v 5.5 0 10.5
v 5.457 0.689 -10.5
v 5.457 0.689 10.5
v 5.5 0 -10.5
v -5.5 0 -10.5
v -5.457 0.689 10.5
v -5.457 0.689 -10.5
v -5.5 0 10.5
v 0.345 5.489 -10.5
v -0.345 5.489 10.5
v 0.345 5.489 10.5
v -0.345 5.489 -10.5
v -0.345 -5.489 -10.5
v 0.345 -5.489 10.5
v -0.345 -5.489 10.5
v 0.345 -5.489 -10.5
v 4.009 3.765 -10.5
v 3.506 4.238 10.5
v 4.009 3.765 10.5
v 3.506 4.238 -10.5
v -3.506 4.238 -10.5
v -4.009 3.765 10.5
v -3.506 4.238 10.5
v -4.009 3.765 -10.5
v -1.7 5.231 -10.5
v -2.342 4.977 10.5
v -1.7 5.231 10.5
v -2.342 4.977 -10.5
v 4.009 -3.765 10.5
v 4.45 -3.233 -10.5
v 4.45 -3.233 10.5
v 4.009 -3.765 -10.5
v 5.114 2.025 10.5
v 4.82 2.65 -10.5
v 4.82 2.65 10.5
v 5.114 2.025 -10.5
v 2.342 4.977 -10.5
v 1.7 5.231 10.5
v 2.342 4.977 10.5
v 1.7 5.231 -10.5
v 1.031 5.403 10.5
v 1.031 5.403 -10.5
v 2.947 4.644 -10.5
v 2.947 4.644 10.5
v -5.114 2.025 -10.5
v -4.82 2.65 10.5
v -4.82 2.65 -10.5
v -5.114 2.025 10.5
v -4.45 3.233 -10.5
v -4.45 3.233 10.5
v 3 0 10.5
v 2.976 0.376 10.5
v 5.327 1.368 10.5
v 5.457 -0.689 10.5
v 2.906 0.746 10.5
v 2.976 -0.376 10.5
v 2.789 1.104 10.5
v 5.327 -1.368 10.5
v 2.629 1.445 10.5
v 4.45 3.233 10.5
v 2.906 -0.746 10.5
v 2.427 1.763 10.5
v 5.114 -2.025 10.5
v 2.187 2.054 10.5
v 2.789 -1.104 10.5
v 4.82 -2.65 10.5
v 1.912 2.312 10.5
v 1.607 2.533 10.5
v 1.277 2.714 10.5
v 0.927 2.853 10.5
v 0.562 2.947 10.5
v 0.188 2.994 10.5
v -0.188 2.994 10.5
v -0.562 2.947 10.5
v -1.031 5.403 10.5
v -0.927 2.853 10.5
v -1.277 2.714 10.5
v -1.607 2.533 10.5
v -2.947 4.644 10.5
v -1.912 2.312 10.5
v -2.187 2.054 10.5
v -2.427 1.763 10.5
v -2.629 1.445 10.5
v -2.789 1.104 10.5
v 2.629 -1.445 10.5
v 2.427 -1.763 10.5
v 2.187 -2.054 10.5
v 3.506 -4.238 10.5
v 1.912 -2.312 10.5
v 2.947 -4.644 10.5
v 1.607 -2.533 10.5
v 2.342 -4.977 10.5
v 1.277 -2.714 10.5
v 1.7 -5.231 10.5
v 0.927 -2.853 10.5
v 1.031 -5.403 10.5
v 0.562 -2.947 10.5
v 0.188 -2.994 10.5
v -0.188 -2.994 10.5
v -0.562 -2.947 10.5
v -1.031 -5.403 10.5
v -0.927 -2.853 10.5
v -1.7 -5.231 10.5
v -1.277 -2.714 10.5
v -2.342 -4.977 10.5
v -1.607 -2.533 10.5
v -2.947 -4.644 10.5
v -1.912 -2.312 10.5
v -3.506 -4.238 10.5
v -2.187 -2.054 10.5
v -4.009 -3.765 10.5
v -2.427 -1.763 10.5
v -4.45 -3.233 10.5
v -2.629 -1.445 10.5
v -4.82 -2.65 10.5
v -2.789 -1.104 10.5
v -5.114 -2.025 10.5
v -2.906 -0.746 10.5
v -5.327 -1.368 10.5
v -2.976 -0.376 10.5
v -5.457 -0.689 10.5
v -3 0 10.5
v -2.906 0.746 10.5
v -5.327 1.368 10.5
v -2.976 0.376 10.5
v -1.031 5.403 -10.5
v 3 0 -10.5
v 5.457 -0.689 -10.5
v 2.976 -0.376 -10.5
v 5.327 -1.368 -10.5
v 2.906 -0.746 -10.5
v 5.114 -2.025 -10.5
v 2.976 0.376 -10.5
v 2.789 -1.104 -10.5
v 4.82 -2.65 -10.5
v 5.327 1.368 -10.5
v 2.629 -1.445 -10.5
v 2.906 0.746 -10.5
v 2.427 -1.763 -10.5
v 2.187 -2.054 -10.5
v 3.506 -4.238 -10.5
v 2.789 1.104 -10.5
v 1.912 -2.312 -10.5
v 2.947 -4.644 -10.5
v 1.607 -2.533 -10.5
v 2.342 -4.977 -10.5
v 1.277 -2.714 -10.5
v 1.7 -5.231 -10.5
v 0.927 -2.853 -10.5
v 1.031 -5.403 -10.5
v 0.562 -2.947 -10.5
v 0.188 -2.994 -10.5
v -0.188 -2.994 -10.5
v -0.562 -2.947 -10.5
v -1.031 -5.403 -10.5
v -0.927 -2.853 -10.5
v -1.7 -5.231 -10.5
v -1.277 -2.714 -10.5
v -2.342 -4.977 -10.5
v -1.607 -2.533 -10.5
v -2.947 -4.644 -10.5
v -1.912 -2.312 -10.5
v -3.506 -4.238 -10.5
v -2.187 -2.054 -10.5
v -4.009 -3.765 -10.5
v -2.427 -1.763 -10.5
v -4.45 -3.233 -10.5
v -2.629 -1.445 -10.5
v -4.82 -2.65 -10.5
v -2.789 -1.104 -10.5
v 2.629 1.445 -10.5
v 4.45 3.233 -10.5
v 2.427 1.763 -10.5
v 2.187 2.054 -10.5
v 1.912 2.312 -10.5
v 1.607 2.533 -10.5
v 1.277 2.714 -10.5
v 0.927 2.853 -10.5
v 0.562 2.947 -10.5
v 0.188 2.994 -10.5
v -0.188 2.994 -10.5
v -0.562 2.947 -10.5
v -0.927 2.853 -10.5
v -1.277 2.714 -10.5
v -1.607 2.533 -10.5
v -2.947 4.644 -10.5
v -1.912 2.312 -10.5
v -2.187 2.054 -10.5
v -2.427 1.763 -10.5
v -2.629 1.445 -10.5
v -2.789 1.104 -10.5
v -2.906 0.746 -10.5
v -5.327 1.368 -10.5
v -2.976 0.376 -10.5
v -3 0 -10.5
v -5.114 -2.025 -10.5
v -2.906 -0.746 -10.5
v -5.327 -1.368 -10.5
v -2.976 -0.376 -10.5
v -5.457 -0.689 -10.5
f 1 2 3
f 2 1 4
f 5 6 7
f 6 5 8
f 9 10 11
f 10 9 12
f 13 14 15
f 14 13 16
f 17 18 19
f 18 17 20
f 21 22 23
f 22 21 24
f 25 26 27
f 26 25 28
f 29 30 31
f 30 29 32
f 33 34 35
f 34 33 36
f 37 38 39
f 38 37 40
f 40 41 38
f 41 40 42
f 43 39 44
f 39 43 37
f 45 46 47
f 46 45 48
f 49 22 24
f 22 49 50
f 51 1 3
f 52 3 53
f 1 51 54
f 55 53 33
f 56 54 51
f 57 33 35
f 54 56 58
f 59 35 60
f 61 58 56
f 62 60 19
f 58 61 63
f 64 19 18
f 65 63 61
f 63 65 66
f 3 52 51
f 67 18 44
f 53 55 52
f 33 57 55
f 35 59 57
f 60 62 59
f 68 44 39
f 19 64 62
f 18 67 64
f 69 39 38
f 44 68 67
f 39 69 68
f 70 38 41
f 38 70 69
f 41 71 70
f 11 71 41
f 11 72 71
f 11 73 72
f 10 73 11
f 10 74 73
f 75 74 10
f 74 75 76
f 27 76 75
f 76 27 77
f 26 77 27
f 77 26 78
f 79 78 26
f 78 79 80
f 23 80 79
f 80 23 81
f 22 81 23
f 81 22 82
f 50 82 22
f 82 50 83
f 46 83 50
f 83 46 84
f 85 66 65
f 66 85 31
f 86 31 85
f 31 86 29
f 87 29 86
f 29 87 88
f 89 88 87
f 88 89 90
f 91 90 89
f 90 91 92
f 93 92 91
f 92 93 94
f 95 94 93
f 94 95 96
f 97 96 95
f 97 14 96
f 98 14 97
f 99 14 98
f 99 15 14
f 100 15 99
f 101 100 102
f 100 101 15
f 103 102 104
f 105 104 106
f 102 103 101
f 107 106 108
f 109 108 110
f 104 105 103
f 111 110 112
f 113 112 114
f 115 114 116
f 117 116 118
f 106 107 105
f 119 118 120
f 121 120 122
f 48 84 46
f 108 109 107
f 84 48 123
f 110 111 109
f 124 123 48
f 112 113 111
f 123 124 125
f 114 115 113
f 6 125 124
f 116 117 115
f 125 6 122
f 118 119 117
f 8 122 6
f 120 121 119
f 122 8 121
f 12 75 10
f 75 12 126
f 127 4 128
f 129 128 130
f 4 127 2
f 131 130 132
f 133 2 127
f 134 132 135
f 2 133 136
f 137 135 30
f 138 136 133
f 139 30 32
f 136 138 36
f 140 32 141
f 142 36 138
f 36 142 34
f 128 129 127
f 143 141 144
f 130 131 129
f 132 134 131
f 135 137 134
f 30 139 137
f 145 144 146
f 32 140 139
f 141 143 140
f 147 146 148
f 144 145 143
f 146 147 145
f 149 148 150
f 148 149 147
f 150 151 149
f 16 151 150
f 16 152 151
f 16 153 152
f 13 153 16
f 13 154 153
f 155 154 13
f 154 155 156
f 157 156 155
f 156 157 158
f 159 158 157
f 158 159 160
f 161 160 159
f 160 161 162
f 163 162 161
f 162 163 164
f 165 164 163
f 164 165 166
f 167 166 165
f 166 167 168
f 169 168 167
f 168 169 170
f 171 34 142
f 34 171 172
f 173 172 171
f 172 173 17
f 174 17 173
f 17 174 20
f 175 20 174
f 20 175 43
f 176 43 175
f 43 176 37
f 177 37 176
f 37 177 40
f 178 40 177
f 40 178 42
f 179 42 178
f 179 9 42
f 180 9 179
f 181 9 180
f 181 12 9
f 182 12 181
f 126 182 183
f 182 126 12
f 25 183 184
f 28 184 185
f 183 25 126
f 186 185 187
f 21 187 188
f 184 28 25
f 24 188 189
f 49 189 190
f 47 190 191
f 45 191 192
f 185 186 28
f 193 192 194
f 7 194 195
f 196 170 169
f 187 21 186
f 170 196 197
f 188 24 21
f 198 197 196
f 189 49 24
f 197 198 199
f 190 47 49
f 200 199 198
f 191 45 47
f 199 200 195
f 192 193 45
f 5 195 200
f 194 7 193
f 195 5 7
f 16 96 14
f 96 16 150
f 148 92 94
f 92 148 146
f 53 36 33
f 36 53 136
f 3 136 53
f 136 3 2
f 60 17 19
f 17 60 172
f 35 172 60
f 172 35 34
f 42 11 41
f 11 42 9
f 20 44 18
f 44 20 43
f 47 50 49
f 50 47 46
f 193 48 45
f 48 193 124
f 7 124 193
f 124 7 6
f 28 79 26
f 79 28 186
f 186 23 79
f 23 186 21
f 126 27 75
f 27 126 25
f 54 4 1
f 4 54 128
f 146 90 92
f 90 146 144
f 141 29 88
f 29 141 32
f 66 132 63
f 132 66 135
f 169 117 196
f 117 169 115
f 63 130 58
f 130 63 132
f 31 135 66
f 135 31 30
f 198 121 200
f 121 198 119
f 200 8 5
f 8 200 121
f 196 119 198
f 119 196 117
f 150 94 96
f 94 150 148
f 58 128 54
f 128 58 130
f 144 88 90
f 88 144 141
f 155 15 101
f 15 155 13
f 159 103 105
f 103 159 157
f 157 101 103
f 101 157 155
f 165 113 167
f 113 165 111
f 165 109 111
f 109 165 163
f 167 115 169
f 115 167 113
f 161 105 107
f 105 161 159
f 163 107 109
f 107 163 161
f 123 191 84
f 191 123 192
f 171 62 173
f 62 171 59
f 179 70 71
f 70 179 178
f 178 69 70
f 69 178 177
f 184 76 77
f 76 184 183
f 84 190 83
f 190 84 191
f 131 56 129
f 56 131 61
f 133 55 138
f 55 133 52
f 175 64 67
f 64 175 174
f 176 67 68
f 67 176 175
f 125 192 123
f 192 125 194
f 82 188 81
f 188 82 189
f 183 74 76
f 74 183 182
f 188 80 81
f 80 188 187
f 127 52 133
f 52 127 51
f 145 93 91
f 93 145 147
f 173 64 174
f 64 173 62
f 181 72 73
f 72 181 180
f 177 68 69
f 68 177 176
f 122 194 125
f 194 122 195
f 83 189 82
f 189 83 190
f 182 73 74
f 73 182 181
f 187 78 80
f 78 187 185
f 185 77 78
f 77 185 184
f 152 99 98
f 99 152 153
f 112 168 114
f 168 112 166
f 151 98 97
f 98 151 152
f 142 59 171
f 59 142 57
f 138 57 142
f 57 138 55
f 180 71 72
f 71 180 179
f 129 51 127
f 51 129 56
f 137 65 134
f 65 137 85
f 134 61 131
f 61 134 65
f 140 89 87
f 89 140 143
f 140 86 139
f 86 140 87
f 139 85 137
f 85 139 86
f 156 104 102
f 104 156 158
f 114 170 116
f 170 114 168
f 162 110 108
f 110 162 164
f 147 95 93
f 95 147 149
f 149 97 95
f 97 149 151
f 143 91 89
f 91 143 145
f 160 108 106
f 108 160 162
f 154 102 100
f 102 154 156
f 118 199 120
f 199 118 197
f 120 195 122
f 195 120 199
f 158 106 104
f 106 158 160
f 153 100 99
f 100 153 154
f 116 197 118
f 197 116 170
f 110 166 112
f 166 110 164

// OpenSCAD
$fn = 50;


difference() {
	union() {
		translate(v = [0, 0, -10.5000000000]) {
			cylinder(h = 21, r = 5.5000000000);
		}
	}
	union() {
		translate(v = [0, 0, -100.0000000000]) {
			cylinder(h = 200, r = 3.0000000000);
		}
	}
}
